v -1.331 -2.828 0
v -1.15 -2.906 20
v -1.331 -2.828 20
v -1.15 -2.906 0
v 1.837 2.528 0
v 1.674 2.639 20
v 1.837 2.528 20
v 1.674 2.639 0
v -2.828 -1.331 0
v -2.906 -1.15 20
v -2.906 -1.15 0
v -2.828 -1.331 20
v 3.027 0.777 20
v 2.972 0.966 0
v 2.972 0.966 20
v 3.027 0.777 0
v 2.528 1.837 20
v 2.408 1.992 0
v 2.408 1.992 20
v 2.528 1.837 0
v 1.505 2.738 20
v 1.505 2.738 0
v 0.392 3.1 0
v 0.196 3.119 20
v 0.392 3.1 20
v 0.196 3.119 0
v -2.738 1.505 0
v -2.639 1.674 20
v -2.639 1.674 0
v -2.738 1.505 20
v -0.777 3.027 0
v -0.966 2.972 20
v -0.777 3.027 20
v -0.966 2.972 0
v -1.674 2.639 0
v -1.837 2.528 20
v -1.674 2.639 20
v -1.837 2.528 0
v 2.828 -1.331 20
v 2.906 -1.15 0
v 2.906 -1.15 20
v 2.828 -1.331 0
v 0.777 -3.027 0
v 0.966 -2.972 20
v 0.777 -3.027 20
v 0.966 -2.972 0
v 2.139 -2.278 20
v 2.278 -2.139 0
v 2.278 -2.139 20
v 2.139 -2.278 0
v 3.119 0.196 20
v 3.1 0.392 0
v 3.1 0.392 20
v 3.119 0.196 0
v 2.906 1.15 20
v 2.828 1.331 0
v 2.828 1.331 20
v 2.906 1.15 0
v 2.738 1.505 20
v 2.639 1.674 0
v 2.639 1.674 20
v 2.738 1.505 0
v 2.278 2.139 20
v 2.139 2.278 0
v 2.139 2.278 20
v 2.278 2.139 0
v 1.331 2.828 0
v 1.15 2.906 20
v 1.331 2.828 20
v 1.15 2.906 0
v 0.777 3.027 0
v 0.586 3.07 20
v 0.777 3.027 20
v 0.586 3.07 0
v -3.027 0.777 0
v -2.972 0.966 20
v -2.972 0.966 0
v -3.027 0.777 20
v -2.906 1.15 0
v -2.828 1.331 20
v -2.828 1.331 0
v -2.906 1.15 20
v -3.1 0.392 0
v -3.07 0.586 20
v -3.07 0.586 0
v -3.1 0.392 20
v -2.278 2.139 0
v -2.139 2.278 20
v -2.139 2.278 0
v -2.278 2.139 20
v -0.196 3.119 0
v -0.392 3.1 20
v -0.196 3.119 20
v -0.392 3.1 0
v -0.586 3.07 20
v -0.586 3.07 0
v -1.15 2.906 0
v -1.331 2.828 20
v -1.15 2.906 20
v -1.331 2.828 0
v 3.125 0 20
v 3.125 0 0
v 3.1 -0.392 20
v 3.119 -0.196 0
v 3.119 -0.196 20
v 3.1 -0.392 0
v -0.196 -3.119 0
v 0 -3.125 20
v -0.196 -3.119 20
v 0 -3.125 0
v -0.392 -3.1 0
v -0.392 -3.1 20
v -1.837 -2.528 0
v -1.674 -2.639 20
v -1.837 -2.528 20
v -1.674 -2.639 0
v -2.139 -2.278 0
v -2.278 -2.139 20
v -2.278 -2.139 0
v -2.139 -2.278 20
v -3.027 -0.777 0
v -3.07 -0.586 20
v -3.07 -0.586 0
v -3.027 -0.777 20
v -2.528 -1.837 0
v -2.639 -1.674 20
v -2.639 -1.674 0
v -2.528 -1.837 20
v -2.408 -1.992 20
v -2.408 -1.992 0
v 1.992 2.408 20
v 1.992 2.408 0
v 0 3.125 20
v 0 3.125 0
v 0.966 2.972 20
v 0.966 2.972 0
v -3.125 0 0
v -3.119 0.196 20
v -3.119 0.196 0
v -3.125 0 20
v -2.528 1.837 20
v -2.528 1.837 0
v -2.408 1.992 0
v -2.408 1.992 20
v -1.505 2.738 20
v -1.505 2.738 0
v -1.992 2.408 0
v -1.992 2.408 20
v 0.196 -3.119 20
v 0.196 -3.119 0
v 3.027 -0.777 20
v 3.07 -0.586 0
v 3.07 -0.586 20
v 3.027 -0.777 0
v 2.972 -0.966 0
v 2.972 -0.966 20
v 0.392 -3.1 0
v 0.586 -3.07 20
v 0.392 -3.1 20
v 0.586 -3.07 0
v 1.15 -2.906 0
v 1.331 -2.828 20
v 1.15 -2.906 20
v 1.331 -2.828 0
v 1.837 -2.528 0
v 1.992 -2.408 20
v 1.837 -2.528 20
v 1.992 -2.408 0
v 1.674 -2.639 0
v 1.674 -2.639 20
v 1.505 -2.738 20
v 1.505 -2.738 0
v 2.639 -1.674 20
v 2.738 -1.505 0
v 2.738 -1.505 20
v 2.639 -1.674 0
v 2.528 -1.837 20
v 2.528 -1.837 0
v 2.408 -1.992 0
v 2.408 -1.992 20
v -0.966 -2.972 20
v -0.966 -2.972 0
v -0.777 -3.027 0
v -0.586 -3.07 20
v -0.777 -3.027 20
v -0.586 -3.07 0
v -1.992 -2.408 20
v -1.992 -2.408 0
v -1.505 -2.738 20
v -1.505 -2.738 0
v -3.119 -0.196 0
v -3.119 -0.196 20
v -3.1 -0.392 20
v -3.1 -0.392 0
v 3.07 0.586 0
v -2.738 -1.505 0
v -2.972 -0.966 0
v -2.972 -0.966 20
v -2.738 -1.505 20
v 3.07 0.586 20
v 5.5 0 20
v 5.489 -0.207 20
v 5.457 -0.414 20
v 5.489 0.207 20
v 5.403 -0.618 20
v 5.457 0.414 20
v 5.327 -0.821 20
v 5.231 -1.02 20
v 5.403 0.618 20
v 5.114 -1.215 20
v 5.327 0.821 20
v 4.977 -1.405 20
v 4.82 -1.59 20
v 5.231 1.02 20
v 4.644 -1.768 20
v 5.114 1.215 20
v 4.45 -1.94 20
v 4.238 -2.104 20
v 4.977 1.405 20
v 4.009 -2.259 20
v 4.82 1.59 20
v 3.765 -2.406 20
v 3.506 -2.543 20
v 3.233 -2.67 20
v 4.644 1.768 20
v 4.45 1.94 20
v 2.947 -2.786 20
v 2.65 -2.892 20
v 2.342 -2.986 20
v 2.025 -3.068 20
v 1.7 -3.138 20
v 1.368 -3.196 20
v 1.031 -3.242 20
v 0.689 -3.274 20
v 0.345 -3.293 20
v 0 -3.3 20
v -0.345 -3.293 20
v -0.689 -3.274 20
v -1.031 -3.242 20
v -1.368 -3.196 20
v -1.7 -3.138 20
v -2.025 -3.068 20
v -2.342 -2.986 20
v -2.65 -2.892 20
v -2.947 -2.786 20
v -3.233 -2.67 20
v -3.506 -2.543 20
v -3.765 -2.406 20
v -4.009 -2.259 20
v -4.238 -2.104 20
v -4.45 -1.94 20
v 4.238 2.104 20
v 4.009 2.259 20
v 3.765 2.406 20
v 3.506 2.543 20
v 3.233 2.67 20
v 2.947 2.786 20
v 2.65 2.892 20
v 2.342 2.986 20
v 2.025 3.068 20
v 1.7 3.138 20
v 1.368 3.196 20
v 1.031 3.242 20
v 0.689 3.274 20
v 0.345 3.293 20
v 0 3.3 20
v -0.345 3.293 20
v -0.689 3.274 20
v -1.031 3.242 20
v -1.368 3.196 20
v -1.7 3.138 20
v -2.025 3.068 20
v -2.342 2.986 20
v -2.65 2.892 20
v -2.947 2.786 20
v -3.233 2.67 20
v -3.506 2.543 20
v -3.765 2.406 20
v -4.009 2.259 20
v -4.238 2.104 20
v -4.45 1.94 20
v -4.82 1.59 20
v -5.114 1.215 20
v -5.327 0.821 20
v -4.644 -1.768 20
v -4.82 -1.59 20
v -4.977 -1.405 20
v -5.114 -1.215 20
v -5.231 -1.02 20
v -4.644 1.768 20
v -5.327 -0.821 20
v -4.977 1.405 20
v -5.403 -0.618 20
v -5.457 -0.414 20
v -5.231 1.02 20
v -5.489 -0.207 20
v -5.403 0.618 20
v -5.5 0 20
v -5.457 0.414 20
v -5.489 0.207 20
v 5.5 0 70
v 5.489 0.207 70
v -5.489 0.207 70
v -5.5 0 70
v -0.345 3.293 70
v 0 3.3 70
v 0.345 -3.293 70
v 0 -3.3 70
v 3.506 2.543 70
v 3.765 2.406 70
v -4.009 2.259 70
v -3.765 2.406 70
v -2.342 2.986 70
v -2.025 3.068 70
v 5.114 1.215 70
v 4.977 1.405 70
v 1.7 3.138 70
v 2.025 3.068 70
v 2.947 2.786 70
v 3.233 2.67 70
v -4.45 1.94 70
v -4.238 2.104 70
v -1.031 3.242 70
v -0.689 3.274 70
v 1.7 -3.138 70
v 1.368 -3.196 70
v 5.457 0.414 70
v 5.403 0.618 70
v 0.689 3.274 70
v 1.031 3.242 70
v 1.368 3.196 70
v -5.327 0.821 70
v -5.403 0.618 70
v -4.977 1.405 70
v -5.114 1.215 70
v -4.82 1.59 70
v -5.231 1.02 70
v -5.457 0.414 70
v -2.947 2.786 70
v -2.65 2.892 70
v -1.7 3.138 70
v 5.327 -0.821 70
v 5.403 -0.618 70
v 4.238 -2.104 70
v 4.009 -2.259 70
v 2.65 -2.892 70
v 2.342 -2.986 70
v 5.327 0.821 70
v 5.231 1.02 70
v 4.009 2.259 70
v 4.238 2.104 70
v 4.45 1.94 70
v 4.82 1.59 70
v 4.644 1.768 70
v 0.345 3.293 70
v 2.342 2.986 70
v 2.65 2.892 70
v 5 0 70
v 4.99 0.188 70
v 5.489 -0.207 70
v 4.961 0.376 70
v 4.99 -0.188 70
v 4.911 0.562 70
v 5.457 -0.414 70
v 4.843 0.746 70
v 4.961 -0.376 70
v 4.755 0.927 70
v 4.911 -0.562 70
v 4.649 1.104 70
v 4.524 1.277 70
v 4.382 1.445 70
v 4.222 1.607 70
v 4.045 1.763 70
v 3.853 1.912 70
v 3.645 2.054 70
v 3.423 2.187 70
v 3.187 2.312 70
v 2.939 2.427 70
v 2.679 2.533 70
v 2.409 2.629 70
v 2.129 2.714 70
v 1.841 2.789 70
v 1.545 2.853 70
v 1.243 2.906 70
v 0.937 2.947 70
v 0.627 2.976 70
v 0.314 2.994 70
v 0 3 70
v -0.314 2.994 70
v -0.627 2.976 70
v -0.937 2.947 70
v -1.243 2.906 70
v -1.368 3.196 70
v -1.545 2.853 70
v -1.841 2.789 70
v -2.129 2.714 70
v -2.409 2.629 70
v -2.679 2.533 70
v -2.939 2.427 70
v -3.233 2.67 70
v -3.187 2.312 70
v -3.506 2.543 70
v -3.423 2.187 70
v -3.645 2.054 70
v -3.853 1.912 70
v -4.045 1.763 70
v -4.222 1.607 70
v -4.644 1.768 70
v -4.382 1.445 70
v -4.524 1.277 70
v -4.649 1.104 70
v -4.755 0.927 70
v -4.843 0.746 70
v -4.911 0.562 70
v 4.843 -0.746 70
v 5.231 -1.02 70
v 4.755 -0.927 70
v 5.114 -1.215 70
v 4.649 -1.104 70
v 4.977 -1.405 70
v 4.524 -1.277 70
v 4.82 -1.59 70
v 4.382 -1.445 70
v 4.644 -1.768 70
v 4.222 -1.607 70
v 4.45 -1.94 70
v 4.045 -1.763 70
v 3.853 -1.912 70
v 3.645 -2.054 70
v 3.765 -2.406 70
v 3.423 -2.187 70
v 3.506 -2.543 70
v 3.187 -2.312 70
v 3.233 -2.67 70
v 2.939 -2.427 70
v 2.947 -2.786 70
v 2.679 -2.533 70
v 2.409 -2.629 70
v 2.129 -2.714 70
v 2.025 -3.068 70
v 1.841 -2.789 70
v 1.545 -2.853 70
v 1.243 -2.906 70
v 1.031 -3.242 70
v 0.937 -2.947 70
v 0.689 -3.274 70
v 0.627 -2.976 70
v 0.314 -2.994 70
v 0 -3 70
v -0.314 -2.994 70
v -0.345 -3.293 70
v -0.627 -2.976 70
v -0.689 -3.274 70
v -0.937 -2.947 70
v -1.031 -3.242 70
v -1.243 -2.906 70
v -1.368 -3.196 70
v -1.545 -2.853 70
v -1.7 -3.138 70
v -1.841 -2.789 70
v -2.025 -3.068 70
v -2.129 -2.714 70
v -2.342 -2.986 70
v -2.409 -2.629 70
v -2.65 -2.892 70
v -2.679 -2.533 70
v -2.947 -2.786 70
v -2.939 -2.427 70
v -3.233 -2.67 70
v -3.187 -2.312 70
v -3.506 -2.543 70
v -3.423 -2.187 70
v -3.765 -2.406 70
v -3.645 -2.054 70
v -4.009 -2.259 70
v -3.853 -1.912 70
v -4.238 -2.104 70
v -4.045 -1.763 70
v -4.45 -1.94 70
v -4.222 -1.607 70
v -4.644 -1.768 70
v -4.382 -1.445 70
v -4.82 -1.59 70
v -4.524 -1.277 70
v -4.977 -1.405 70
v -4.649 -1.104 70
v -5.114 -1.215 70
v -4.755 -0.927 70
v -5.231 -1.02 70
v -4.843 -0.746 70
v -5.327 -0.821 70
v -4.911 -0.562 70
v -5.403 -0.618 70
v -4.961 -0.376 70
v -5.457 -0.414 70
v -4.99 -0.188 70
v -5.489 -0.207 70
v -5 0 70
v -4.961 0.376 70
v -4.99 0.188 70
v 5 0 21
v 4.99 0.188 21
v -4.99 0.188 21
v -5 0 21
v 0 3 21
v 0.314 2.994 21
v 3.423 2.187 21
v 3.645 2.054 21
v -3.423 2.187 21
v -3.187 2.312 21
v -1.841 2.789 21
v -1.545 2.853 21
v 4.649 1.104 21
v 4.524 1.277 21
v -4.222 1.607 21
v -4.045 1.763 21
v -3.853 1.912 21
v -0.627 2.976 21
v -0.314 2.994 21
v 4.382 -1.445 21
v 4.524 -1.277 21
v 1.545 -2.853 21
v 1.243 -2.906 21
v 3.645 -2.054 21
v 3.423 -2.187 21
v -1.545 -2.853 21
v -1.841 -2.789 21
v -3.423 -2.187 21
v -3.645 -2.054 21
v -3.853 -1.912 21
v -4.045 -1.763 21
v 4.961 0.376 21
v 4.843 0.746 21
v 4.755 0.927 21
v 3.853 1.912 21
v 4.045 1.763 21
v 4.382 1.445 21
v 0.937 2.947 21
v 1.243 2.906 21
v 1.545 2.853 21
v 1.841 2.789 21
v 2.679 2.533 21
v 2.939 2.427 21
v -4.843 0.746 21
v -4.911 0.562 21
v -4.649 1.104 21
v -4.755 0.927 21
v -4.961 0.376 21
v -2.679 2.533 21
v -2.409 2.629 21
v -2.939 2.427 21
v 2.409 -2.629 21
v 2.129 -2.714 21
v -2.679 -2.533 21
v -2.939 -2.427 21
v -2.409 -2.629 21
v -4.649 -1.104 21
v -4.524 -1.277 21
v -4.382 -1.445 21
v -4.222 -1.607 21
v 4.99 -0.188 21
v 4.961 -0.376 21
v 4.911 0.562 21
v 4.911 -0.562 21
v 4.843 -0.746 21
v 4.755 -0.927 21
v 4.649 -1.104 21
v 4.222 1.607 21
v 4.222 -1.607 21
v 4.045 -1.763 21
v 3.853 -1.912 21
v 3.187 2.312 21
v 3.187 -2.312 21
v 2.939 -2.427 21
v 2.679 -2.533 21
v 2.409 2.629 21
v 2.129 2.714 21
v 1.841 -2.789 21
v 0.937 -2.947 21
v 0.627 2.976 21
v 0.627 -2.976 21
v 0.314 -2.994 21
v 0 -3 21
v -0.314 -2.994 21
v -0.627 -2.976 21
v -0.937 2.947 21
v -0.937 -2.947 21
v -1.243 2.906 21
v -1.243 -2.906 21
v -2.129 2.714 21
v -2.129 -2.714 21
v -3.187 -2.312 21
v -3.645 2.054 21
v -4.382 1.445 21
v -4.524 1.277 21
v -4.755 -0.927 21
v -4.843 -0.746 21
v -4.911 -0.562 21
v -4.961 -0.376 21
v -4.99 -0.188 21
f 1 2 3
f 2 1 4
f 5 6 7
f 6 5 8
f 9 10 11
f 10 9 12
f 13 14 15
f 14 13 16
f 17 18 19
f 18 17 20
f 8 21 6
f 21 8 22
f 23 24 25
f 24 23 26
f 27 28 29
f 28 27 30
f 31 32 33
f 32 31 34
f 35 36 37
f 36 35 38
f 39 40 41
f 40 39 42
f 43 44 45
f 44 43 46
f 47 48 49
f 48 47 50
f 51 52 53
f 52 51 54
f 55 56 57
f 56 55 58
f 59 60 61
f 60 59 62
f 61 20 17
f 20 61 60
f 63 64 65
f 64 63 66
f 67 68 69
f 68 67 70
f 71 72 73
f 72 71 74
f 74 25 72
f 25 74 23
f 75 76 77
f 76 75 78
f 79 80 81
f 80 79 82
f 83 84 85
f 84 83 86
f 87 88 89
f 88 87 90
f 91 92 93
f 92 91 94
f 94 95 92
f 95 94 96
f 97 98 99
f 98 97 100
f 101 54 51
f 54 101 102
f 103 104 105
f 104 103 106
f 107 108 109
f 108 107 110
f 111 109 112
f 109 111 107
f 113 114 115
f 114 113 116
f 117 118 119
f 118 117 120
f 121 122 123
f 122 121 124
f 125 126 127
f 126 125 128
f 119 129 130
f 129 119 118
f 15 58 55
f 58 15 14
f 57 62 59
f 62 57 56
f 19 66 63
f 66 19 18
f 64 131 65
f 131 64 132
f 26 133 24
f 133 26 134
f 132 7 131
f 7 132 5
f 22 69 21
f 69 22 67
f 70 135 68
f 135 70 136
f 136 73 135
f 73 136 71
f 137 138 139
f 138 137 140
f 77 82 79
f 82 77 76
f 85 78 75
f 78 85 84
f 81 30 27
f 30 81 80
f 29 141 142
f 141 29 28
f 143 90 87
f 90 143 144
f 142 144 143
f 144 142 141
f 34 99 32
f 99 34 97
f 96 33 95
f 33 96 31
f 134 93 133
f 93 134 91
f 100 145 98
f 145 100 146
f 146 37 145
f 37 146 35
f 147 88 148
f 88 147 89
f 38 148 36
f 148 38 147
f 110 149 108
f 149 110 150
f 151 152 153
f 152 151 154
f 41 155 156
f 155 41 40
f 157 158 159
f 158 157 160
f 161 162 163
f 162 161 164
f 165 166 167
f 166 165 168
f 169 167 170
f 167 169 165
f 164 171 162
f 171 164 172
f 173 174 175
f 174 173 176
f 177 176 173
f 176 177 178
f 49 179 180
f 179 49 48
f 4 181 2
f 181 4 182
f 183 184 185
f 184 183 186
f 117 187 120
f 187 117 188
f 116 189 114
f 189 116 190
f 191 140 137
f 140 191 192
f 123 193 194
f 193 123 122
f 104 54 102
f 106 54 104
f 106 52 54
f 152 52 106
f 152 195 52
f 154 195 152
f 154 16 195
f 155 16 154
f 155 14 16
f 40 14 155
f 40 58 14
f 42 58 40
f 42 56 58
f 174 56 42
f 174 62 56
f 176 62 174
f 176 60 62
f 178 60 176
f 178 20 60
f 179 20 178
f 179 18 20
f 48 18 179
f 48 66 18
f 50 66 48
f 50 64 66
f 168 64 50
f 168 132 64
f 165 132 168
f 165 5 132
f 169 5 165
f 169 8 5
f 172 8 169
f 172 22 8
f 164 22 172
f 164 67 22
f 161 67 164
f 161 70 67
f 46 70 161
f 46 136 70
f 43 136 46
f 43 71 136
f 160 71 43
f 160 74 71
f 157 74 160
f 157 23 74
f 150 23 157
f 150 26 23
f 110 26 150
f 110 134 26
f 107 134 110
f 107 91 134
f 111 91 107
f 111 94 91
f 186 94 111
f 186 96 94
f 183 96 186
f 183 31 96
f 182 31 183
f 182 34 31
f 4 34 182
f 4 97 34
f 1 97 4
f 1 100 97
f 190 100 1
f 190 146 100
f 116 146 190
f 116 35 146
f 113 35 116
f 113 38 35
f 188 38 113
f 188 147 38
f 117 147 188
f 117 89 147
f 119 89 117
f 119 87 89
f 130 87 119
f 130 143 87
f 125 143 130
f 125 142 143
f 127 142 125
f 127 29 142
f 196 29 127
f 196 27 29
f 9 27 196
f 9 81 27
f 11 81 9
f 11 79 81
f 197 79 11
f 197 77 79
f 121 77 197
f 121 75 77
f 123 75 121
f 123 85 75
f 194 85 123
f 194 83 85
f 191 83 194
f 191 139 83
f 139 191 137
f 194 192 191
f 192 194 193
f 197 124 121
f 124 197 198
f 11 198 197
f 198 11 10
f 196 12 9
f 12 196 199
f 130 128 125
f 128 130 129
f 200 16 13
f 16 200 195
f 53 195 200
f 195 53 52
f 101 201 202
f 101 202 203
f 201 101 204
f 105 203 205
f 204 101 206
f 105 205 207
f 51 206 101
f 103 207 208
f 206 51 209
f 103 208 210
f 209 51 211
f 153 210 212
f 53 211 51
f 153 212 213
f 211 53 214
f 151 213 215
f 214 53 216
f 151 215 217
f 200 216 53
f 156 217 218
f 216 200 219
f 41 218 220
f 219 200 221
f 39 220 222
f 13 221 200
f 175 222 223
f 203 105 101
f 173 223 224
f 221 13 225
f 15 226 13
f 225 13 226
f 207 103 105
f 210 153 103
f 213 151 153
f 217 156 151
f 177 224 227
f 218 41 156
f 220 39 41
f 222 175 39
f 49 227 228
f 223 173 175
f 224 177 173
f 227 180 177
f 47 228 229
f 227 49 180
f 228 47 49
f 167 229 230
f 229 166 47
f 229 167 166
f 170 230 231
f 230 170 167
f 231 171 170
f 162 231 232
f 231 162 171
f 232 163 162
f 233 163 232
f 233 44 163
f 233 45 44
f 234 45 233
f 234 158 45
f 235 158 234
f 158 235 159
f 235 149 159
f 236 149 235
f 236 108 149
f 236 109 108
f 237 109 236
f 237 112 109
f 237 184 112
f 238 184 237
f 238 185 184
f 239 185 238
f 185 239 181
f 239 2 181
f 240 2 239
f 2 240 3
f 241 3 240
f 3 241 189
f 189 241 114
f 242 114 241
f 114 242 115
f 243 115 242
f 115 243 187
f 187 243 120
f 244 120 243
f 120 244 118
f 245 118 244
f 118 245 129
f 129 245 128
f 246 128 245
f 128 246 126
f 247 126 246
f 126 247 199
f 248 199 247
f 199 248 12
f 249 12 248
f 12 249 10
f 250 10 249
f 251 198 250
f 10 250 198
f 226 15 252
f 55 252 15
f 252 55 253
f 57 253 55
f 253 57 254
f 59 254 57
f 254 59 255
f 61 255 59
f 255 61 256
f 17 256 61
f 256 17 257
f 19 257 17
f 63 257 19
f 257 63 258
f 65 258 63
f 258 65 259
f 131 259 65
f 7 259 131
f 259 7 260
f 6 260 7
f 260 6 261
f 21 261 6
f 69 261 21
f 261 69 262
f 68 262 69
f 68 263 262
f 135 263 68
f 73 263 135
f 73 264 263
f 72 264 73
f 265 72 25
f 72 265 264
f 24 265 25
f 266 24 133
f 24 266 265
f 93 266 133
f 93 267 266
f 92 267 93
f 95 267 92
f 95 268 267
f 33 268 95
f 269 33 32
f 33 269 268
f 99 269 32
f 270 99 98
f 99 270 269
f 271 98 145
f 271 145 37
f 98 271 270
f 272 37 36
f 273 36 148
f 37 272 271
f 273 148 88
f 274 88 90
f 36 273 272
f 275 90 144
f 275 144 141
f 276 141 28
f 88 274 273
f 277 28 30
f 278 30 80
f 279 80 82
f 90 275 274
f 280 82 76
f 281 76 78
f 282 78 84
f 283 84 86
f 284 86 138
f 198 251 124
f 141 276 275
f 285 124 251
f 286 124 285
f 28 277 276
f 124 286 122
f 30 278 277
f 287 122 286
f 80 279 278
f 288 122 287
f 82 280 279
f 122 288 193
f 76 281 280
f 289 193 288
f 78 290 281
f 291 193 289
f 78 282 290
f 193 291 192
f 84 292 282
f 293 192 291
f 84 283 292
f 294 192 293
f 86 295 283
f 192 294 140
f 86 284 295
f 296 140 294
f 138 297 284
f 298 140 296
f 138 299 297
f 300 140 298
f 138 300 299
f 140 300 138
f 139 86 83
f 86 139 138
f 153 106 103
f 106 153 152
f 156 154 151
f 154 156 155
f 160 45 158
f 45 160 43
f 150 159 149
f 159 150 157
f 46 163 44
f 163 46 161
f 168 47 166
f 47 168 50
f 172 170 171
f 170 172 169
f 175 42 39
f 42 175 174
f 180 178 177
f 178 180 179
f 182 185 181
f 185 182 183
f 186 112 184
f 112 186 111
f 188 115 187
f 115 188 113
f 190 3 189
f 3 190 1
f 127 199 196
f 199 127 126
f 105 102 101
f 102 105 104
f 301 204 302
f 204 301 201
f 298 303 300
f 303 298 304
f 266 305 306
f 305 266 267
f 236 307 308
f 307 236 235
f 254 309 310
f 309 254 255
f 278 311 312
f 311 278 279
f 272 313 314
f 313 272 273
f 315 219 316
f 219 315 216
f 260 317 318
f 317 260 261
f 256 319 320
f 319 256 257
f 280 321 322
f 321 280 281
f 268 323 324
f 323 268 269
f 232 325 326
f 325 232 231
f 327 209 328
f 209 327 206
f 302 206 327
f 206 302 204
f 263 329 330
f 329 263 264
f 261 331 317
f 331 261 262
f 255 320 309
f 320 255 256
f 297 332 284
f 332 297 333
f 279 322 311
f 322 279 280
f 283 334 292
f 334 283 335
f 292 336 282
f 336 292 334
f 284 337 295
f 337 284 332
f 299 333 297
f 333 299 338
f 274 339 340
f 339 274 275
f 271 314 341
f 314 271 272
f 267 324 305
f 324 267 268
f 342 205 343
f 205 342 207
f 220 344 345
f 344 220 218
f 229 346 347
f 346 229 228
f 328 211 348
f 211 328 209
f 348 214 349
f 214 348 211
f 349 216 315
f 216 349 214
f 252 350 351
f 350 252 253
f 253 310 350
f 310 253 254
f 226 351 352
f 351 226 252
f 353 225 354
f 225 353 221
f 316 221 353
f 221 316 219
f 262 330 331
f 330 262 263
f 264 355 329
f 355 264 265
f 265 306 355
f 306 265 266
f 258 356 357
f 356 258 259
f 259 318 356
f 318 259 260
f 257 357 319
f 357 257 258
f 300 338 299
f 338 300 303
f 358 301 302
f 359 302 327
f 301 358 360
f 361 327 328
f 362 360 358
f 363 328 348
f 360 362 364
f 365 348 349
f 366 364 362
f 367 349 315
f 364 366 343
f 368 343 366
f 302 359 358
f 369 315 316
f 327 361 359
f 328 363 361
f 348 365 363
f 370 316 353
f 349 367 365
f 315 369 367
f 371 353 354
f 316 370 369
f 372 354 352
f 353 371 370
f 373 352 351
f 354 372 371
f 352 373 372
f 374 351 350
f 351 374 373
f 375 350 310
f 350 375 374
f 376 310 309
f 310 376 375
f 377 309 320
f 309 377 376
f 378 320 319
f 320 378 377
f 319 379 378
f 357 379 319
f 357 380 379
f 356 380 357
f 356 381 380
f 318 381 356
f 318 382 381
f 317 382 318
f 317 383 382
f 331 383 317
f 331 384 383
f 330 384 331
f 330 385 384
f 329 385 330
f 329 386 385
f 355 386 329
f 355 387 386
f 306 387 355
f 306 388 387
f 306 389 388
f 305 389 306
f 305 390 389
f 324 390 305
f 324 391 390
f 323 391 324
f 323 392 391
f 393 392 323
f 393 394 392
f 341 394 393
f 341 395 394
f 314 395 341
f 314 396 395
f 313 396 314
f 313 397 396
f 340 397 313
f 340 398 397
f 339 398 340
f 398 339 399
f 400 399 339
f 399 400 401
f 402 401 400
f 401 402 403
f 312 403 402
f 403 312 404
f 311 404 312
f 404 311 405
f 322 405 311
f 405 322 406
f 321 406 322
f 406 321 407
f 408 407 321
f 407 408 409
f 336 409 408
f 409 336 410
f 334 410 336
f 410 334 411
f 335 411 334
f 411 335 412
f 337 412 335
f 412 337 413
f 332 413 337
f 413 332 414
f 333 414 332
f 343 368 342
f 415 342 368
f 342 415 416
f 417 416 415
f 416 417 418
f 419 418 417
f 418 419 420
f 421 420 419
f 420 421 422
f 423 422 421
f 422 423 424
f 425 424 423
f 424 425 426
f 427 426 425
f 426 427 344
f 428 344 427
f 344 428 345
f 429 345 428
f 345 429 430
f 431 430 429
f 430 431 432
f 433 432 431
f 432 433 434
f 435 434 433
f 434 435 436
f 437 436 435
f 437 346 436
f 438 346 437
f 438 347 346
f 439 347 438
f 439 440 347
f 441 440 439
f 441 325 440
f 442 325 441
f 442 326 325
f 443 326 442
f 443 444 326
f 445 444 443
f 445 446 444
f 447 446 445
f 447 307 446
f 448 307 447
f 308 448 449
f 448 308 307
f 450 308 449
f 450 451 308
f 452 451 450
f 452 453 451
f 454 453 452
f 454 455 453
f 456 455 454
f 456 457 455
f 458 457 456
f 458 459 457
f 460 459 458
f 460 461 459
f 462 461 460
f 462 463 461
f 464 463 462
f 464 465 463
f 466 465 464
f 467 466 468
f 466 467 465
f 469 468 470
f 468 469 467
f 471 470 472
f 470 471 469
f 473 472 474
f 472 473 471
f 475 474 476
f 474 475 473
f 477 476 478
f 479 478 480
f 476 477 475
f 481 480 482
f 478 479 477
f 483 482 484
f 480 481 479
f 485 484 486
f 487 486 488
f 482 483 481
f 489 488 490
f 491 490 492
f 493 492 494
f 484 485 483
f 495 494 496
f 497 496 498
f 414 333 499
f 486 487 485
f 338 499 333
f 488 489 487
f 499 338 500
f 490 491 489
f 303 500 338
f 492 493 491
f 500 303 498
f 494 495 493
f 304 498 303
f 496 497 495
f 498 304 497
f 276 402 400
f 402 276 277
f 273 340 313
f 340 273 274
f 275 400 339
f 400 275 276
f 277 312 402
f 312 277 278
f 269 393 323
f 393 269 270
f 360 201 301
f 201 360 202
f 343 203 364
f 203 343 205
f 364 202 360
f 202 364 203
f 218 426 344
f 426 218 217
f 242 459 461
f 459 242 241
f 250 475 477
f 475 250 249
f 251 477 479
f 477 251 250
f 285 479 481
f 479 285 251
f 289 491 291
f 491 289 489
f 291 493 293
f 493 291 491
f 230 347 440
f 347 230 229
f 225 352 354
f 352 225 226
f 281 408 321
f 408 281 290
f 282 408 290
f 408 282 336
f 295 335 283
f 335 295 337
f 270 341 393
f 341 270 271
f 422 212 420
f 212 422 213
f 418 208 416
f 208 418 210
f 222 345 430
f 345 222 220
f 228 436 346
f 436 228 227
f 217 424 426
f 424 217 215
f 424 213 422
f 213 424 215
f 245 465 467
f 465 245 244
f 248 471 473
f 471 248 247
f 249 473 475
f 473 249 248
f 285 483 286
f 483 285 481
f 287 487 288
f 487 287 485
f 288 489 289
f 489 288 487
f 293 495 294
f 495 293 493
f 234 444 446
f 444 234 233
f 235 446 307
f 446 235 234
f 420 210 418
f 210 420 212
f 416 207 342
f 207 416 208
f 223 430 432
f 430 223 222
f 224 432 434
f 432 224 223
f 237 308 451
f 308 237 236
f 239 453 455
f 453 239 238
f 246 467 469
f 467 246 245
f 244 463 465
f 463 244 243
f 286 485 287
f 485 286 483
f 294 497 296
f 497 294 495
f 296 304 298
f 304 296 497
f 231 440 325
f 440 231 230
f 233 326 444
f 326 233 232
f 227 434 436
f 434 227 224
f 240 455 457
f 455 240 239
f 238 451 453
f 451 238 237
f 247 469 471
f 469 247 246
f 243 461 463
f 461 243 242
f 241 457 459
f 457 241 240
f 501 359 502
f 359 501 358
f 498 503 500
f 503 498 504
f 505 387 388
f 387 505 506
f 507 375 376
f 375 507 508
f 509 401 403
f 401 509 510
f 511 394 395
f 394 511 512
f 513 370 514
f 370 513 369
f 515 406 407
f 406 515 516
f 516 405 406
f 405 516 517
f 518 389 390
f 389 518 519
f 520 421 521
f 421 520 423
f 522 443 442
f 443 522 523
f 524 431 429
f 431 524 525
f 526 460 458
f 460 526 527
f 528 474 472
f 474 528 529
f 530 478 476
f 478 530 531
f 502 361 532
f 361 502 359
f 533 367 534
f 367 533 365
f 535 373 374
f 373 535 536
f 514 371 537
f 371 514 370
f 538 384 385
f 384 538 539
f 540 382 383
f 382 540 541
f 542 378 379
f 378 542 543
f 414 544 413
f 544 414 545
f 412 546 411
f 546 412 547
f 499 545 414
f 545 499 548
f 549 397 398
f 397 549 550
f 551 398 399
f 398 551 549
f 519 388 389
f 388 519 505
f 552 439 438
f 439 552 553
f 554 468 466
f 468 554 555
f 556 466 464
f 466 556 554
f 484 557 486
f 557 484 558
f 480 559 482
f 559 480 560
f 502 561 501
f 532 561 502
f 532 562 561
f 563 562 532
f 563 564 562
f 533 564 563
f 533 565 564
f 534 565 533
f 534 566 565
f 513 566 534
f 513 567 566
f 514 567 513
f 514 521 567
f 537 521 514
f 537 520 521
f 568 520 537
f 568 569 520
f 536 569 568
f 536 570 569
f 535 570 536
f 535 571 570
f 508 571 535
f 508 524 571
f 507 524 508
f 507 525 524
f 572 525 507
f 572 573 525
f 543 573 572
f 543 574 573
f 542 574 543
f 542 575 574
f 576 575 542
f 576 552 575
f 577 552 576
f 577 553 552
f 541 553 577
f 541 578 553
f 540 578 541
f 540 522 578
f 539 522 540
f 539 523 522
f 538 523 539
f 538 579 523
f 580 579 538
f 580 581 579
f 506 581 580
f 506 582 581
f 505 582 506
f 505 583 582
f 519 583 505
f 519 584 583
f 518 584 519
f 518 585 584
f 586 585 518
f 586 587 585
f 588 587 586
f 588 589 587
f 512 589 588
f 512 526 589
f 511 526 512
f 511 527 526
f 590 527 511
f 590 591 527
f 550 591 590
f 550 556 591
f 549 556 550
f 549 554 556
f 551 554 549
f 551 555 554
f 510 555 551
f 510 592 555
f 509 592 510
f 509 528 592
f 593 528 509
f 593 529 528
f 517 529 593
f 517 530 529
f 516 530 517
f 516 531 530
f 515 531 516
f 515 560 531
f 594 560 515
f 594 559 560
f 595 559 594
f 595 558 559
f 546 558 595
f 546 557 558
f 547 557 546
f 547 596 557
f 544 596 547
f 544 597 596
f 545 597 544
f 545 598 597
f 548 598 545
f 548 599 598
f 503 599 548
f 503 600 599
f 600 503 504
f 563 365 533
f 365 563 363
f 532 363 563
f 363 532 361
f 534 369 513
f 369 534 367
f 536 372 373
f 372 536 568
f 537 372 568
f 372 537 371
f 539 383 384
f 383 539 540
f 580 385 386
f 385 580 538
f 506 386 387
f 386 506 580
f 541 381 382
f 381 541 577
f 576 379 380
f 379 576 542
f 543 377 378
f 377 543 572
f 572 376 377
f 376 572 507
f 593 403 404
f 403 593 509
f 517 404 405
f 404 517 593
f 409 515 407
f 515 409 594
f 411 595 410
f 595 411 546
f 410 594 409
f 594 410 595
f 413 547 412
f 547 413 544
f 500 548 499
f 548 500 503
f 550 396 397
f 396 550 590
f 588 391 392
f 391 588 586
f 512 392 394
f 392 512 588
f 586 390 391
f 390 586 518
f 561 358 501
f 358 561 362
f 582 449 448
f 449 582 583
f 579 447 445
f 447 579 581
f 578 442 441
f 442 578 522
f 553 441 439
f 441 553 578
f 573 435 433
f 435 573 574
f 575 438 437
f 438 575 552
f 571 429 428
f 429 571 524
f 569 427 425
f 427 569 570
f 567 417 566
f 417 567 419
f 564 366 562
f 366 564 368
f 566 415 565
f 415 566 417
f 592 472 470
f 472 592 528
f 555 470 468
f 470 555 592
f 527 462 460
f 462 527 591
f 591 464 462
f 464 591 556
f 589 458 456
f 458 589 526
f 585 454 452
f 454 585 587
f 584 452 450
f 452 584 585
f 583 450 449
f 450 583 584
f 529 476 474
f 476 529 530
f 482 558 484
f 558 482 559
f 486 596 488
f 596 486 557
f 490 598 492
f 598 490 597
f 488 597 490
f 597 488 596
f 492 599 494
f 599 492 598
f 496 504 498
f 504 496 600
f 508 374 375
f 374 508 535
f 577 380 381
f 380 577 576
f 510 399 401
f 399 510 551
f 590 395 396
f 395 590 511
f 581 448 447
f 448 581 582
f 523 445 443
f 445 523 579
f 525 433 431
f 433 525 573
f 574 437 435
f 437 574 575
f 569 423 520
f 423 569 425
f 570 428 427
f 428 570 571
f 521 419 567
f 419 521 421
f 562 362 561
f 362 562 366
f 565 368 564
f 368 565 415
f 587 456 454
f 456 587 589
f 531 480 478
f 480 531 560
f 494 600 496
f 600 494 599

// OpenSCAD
$fn=100;
bottom_pin_diameter = 6.2;

module sampleholder(cylinder_height,
                    cylinder_diameter,
                    wall_thickness=1,
                    pin_height=20,
                    ) {
    difference() { // Cut out cylinder with given diameter from cylinder with given diameter plus wall thickness
        union() { // Collect the bottom pin and the cylinder
            cylinder(d=6.25, h=pin_height); // Bottom pin
            scale([1, 0.6, 1]) { // squash the sphere height if desired
                translate([0,0,pin_height]) { // Move the actual holder cylinder up
                    cylinder(d=cylinder_diameter+wall_thickness,h=cylinder_height);
                    }
                }
                }
                translate([0,0,pin_height+wall_thickness]) {  // Move the drilling sphere and cylinder up
                    scale([1, 0.6, 1]) { // squash the sphere height if desired
                    #cylinder(d=cylinder_diameter, h=cylinder_height+1);
                        }
                    }
                }
            }

sampleholder(50, 10);
